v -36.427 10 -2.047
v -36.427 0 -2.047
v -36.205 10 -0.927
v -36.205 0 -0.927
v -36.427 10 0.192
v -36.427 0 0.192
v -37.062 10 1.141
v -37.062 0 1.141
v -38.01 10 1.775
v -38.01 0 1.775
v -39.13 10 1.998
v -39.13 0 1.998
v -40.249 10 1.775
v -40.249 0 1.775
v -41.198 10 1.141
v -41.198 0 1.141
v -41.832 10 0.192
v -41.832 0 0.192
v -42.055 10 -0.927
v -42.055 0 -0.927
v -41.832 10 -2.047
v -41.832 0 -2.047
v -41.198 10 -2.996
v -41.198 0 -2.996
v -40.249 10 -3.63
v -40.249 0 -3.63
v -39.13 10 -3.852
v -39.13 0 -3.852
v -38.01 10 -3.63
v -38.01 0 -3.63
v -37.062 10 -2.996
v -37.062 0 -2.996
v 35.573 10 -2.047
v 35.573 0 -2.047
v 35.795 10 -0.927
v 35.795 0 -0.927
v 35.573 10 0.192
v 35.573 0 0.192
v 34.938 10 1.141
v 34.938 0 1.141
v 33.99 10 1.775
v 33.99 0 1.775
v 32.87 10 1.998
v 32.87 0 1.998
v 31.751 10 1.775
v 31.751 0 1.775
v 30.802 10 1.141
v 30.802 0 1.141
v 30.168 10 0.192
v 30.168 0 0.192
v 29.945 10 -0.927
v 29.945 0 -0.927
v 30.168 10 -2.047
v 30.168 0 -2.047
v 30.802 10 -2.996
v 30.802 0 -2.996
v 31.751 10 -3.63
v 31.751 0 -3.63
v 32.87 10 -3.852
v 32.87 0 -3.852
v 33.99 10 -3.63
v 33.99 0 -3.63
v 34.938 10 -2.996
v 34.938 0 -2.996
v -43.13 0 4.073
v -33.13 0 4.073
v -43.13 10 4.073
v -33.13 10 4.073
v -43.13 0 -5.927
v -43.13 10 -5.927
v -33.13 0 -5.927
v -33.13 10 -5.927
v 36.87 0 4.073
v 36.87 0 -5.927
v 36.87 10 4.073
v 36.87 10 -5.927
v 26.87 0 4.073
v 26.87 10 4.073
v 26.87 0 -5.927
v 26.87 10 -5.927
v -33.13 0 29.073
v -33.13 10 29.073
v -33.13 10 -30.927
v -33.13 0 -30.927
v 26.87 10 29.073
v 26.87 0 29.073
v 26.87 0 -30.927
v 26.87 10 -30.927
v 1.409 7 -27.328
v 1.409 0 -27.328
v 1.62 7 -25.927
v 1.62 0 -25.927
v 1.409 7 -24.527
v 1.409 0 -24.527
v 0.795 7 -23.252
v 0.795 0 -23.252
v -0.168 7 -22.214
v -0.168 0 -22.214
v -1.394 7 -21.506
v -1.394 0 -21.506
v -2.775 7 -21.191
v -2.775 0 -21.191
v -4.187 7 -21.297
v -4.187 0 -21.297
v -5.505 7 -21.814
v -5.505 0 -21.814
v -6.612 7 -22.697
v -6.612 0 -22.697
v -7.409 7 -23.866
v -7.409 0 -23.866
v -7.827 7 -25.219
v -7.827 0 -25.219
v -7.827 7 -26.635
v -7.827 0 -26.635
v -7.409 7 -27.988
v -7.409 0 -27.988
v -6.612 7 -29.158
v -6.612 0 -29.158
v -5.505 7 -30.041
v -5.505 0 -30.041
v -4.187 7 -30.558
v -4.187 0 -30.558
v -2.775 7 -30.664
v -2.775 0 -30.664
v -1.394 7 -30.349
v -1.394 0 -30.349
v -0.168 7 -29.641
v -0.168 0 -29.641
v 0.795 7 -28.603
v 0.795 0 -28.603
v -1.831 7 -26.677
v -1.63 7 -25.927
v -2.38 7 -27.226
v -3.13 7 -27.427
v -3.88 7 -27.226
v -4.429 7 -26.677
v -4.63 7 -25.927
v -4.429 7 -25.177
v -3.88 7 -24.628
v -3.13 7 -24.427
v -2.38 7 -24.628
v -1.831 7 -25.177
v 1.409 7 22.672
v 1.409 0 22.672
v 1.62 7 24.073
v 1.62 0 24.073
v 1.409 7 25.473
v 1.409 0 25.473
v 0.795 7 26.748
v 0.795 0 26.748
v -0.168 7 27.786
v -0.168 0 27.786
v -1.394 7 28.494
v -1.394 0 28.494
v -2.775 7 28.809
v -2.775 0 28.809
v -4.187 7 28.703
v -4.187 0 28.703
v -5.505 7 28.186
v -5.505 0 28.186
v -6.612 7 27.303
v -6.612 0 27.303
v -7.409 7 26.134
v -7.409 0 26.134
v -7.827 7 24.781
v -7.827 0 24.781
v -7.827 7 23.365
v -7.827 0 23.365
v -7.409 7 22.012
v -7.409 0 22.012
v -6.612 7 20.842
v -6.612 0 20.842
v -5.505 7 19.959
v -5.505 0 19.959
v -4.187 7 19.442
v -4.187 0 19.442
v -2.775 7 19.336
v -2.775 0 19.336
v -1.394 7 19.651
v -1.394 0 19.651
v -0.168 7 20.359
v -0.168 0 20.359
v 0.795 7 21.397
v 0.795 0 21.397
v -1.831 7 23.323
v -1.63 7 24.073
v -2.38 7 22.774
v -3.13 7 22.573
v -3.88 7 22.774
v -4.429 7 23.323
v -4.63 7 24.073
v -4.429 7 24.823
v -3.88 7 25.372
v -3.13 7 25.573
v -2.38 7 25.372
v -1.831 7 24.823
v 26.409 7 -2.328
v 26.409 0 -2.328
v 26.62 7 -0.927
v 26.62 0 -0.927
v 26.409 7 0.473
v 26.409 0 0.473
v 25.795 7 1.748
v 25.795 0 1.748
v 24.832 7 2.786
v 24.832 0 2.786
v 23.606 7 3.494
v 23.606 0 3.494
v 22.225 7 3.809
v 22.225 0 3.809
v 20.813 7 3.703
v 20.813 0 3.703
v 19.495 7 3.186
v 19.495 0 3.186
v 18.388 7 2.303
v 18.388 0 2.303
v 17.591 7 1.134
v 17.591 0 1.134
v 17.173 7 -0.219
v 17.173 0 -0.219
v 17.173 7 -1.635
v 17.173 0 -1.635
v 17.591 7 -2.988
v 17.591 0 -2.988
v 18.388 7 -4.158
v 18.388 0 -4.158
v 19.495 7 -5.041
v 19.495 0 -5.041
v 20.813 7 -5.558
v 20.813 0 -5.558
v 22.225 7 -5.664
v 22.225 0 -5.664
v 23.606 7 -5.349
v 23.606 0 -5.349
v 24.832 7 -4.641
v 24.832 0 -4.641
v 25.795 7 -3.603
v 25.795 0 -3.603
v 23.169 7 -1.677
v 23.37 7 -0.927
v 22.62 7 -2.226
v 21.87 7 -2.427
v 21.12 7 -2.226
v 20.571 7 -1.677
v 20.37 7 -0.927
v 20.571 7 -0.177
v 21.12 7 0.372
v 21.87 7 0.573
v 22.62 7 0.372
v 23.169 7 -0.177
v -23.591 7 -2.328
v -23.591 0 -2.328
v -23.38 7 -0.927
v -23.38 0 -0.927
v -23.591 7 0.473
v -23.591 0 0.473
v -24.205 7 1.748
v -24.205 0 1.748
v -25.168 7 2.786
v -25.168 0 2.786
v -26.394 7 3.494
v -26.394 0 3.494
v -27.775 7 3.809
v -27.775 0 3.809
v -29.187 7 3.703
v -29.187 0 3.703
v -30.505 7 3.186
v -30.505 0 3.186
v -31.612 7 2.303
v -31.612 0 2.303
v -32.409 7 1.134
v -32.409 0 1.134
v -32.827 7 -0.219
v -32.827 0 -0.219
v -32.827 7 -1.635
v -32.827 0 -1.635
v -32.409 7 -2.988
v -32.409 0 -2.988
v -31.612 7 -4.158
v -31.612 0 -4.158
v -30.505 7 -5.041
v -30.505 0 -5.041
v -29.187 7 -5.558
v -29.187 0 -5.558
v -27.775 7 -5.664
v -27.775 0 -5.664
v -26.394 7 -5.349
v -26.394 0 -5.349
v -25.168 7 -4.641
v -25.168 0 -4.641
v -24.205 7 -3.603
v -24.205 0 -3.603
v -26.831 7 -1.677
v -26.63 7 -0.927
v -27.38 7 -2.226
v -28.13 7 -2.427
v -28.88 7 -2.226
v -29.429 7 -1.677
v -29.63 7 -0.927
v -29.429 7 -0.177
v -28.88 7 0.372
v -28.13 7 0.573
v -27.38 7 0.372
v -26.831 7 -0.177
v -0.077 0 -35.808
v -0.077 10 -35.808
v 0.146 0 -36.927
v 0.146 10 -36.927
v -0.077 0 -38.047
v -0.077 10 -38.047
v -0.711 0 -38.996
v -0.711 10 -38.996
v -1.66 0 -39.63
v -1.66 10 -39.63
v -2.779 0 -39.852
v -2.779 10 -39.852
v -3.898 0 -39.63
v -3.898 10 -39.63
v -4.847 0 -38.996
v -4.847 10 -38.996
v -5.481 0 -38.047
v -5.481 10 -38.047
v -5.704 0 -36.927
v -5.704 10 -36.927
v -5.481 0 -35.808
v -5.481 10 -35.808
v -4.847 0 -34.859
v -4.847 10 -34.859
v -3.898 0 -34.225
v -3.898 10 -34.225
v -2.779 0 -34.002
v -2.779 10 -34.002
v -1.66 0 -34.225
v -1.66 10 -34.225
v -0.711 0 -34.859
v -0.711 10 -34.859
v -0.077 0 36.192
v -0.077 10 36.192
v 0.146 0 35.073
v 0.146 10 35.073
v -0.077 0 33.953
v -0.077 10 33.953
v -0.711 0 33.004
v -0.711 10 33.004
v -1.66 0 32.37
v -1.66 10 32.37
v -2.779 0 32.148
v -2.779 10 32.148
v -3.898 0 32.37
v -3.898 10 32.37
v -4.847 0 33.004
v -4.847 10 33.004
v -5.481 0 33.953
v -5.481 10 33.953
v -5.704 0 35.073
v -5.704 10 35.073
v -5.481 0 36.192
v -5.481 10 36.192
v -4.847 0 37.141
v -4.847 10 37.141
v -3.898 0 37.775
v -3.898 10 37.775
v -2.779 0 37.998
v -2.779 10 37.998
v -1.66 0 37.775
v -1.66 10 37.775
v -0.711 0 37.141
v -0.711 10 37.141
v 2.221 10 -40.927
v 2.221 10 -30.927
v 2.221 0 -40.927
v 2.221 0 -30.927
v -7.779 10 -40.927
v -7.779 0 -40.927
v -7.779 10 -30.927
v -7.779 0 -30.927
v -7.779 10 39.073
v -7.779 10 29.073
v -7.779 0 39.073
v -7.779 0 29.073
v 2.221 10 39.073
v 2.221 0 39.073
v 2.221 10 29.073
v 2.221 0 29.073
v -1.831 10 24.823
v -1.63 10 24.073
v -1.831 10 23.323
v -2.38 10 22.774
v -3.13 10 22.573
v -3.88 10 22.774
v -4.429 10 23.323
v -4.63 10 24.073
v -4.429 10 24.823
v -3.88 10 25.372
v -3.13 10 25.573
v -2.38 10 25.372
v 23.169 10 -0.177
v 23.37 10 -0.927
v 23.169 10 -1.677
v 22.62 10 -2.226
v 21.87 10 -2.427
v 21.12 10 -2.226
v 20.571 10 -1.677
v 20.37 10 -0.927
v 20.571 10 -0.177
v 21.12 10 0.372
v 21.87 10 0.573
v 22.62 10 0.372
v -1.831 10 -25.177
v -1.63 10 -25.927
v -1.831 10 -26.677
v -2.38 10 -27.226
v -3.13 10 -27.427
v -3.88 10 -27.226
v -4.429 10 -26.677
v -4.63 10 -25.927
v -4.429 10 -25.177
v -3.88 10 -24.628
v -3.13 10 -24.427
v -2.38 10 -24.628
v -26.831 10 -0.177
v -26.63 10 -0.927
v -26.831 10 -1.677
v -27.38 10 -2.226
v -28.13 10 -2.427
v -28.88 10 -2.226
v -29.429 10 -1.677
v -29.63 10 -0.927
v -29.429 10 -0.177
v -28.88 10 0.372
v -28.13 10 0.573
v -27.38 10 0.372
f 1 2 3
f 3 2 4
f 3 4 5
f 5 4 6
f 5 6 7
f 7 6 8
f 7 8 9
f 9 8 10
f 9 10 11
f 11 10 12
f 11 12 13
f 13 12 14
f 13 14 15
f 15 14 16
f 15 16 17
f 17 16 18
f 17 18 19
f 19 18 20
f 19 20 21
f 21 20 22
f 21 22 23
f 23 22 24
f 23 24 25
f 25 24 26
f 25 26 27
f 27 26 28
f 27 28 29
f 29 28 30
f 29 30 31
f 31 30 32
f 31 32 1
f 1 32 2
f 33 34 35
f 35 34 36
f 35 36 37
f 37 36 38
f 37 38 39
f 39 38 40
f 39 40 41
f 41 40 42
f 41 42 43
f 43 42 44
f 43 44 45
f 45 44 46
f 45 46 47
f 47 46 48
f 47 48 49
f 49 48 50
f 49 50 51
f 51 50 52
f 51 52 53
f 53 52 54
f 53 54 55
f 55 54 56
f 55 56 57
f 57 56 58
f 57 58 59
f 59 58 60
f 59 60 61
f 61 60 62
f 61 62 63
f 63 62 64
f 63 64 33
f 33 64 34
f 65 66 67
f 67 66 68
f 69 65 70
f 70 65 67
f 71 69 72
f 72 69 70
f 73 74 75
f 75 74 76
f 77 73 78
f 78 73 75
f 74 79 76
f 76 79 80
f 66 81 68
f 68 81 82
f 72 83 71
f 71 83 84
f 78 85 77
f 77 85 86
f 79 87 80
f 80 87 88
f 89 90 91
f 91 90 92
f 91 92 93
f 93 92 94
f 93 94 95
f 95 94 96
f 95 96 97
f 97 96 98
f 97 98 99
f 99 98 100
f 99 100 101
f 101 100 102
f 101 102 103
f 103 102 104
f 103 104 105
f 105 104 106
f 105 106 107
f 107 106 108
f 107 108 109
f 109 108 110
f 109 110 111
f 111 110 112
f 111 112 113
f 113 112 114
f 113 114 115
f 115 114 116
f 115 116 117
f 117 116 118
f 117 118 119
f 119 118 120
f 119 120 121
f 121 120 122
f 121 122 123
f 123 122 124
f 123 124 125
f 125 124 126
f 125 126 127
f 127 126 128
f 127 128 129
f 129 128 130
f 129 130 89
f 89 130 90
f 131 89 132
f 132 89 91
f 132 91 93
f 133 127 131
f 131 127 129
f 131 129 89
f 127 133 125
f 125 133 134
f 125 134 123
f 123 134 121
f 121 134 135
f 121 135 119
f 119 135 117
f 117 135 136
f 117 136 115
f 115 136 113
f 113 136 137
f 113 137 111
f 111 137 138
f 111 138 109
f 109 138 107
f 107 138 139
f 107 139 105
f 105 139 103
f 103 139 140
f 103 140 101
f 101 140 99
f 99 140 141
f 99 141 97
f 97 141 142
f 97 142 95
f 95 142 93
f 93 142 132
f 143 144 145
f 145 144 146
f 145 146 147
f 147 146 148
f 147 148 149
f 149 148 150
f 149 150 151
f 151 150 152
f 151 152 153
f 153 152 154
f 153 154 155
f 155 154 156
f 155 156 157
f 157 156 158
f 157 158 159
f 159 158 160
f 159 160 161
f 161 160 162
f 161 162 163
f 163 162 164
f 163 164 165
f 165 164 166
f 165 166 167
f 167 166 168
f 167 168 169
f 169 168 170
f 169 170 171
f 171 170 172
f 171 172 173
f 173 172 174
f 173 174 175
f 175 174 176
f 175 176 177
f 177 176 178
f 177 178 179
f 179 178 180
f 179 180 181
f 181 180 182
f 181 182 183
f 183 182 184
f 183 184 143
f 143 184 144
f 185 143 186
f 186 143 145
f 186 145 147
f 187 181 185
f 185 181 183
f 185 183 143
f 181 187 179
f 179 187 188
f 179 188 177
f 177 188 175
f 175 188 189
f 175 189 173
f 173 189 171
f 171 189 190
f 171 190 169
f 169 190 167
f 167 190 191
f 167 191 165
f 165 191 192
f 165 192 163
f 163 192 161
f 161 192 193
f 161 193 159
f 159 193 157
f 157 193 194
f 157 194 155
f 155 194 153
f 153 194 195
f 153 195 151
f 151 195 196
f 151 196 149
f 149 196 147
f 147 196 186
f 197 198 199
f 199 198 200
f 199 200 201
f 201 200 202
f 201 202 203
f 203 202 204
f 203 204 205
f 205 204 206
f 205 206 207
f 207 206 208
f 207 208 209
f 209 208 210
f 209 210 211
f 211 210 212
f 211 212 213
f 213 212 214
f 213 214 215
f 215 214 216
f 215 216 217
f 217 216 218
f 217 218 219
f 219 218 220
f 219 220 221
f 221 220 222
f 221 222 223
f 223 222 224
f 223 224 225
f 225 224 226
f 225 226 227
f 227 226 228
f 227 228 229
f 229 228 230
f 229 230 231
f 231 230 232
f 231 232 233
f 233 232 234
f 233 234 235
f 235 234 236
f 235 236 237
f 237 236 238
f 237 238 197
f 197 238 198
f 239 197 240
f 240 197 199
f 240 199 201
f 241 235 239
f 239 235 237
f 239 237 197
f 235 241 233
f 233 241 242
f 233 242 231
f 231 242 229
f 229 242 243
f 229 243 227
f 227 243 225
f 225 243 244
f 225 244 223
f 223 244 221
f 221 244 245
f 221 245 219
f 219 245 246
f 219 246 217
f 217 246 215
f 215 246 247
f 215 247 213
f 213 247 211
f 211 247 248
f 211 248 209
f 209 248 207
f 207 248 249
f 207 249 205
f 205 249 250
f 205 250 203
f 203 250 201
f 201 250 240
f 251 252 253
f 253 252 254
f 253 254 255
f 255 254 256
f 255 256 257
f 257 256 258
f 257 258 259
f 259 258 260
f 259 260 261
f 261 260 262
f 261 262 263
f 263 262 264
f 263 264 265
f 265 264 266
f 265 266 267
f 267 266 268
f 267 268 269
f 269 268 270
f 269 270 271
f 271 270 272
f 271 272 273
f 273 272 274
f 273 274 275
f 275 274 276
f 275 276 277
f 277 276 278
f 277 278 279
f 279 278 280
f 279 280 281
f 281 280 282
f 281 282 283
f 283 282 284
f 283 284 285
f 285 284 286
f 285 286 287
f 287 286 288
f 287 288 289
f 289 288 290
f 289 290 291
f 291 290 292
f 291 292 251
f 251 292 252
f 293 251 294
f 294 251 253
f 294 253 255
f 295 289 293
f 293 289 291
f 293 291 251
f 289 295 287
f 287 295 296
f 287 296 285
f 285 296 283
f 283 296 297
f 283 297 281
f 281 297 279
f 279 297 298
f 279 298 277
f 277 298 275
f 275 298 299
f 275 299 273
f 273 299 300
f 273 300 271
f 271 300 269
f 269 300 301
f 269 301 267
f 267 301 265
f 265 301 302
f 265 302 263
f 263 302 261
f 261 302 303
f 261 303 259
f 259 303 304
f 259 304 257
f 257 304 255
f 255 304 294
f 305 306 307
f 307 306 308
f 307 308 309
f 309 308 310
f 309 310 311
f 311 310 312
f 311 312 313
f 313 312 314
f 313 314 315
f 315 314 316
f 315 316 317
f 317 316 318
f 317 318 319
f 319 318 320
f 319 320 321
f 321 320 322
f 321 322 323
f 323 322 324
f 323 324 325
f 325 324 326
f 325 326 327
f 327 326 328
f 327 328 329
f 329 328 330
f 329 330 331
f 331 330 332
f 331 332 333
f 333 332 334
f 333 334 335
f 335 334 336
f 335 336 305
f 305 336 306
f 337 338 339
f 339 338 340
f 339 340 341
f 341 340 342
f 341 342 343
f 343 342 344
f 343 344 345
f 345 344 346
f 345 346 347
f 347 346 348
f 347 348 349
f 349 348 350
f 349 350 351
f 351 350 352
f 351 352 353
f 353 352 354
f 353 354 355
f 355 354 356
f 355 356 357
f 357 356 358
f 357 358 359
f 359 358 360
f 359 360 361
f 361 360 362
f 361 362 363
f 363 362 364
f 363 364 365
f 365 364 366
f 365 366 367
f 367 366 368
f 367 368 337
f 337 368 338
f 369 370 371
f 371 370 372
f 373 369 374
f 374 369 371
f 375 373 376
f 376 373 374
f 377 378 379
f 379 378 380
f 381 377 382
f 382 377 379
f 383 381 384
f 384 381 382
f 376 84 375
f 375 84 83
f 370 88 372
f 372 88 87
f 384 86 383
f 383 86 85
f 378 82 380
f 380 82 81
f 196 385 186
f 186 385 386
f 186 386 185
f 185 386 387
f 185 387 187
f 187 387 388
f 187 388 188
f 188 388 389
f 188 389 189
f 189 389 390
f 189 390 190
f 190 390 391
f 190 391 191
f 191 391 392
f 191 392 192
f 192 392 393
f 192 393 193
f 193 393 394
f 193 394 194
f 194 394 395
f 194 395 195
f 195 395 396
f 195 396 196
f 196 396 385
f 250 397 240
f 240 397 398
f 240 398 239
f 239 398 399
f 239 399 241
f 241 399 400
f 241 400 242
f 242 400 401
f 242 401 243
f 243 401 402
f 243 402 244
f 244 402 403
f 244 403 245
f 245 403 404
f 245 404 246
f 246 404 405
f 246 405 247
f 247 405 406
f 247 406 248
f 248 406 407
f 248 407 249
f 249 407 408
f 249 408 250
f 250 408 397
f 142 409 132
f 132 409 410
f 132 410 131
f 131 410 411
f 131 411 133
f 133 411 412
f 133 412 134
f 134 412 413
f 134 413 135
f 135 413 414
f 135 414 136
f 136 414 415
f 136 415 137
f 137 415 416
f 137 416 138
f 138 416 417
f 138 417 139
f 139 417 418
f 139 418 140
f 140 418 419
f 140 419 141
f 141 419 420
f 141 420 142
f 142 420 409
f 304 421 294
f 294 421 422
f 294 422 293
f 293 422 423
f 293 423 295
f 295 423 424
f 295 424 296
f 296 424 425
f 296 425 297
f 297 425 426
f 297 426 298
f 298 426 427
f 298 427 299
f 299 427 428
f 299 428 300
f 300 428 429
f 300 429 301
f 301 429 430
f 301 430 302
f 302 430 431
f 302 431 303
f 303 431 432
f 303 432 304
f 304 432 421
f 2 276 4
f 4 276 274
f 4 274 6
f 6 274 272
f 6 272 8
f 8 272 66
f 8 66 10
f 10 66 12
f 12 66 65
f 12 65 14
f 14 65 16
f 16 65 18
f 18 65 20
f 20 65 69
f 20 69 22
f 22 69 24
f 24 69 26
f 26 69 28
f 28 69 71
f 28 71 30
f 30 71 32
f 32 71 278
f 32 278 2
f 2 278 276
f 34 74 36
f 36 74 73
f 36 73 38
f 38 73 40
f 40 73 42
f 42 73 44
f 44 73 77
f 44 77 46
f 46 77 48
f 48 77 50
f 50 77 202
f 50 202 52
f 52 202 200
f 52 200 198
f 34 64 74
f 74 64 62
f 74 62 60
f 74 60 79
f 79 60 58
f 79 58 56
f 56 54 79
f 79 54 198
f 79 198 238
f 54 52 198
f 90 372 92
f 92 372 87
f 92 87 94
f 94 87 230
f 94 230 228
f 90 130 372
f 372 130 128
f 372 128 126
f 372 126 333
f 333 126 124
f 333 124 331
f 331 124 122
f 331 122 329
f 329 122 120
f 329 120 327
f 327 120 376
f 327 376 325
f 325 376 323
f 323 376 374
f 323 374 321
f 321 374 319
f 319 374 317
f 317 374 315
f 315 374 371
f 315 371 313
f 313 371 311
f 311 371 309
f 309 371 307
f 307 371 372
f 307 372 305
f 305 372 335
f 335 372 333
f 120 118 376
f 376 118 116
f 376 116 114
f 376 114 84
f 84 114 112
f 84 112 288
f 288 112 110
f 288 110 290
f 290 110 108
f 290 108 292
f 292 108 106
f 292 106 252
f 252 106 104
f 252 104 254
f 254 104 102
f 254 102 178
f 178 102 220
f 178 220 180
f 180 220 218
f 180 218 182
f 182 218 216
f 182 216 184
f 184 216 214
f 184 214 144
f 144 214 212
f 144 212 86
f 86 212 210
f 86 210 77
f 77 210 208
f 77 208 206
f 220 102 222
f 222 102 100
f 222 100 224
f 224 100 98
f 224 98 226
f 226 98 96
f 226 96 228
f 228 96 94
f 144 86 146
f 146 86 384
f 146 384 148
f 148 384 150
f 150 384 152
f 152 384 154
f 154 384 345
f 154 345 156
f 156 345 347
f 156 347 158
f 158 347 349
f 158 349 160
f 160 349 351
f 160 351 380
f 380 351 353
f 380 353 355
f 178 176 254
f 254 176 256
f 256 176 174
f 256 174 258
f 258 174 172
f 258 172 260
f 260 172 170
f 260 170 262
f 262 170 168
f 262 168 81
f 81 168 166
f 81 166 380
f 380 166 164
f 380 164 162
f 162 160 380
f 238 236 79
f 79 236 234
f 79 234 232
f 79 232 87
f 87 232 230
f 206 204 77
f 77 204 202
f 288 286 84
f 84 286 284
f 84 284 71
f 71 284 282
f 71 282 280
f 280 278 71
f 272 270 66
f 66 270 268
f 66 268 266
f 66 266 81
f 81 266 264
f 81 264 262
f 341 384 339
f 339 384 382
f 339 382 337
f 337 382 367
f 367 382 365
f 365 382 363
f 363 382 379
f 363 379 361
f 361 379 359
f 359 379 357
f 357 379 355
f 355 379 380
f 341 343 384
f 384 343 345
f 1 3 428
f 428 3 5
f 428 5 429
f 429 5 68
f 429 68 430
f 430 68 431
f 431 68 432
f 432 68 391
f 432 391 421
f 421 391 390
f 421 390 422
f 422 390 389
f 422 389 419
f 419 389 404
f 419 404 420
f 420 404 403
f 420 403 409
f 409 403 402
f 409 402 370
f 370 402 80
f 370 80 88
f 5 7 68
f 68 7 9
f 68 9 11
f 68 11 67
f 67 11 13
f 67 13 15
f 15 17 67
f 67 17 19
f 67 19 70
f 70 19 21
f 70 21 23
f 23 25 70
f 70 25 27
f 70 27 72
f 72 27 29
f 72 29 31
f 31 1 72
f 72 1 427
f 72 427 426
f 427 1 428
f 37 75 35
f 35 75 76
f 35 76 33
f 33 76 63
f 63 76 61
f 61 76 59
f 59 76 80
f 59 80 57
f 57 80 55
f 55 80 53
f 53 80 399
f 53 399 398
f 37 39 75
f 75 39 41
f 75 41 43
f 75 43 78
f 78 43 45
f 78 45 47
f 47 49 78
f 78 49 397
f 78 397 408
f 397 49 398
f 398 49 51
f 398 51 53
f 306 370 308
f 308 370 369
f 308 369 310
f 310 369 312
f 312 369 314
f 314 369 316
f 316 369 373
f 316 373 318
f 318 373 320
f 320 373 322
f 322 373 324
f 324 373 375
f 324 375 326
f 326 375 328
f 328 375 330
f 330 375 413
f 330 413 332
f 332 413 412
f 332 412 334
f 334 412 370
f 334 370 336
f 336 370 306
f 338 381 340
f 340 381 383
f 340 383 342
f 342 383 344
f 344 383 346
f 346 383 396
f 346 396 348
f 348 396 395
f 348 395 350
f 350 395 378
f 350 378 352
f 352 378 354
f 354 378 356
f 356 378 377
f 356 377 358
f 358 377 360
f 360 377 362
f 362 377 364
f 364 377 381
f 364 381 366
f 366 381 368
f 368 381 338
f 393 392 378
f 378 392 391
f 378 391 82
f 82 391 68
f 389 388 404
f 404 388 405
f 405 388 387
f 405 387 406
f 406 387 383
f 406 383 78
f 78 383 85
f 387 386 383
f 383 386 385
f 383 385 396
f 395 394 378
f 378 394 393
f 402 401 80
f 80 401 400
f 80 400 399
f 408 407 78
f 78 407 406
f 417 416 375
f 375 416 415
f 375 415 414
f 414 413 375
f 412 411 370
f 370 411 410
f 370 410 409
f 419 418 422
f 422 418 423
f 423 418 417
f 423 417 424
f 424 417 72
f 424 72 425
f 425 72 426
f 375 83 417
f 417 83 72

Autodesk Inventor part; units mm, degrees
ref_plane "YZ Plane" through (0, 0, 0) normal (1, 0, 0) x (0, 1, 0)
ref_plane "XZ Plane" through (0, 0, 0) normal (0, 1, 0) x (-1, 0, 0)
ref_plane "XY Plane" through (0, 0, 0) normal (0, 0, 1) x (1, 0, 0)
sketch "Sketch1" plane through (0, 0, 0) normal (0, 1, 0) x (-1, 0, 0)
  circle A0 centre (28.1298, -0.9274) radius 1.5
  circle A1 centre (3.1298, -25.9274) radius 1.5
  circle A2 centre (-21.8702, -0.9274) radius 1.5
  circle A3 centre (3.1298, 24.0726) radius 1.5
  line L0 (33.1298, -30.9274) -> (-26.8702, -30.9274)
  line L1 (-26.8702, -30.9274) -> (-26.8702, 29.0726)
  line L2 (-26.8702, 29.0726) -> (33.1298, 29.0726)
  line L3 (33.1298, 29.0726) -> (33.1298, -30.9274)
  line L4 (33.1298, -30.9274) -> (-26.8702, 29.0726) construction
  line L5 (-26.8702, -30.9274) -> (33.1298, 29.0726) construction
  point P0 (0, 0)
  dimension "d1" = 3
  dimension "d2" = 3
  dimension "d3" = 3
  dimension "d4" = 3
  dimension "d7" = 60
  dimension "d8" = 5
  dimension "d9" = 50
  dimension "d10" = 50
  dimension "d12" = 5
  dimension "d13" = 60
  dimension "d14" = 5
  dimension "d15" = 30
  dimension "d16" = 30
  dimension "d17" = 30
extrude "Extrusion1" add sketch "Sketch1" along normal blind 10
sketch "Sketch2" plane through (0, 10, 0) normal (0, 1, 0) x (1, 0, 0)
  line L0 (26.8702, 30.9274) -> (-33.1298, 30.9274) projected
  line L1 (-7.7791, 30.9274) -> (2.2209, 30.9274)
  line L2 (2.2209, 30.9274) -> (2.2209, 40.9274)
  line L3 (2.2209, 40.9274) -> (-7.7791, 40.9274)
  line L4 (-7.7791, 40.9274) -> (-7.7791, 30.9274)
  line L5 (-33.1298, -29.0726) -> (26.8702, -29.0726) projected
  line L6 (-7.7791, -29.0726) -> (2.2209, -29.0726)
  line L7 (2.2209, -29.0726) -> (2.2209, -39.0726)
  line L8 (2.2209, -39.0726) -> (-7.7791, -39.0726)
  line L9 (-7.7791, -39.0726) -> (-7.7791, -29.0726)
  point P0 (0, 0)
  dimension "d18" = 10
  dimension "d19" = 10
  dimension "d20" = 10
extrude "Extrusion2" add sketch "Sketch2" against normal blind 10
sketch "Sketch3" plane through (0, 10, 0) normal (0, 1, 0) x (1, 0, 0)
  circle A0 centre (-2.7791, 36.9274) radius 2.925
  circle A1 centre (-2.7791, -35.0726) radius 2.925
  line L0 (2.2209, 40.9274) -> (-7.7791, 40.9274) projected
  line L1 (2.2209, -39.0726) -> (-7.7791, -39.0726) projected
  line L2 (-7.7791, 30.9274) -> (-7.7791, 40.9274) projected
  line L3 (-7.7791, -39.0726) -> (-7.7791, -29.0726) projected
  point P0 (0, 0)
  dimension "d23" = 5.85
  dimension "d24" = 5.85
  dimension "d25" = 4
  dimension "d26" = 4
  dimension "d29" = 5
  dimension "d30" = 5
extrude "Extrusion3" cut sketch "Sketch3" against normal through all
sketch "Sketch4" plane through (0, 0, 0) normal (0, -1, 0) x (1, 0, 0)
  circle A0 centre (-3.1298, 24.0726) radius 1.5 projected
  circle A1 centre (-3.1298, 24.0726) radius 4.75
  circle A2 centre (21.8702, -0.9274) radius 1.5 projected
  circle A3 centre (21.8702, -0.9274) radius 4.75
  circle A4 centre (-3.1298, -25.9274) radius 1.5 projected
  circle A5 centre (-3.1298, -25.9274) radius 4.75
  circle A6 centre (-28.1298, -0.9274) radius 1.5 projected
  circle A7 centre (-28.1298, -0.9274) radius 4.75
  point P0 (0, 0)
  dimension "d31" = 9.5
  dimension "d32" = 9.5
  dimension "d33" = 9.5
  dimension "d34" = 9.5
extrude "Extrusion4" cut sketch "Sketch4" against normal blind 7
sketch "Sketch5" plane through (0, 0, 0) normal (0, -1, 0) x (1, 0, 0)
  line L0 (-33.1298, 29.0726) -> (-33.1298, -30.9274) projected
  line L1 (-33.1298, -5.9274) -> (-43.1298, -5.9274)
  line L2 (-43.1298, -5.9274) -> (-43.1298, 4.0726)
  line L3 (-43.1298, 4.0726) -> (-33.1298, 4.0726)
  line L4 (-33.1298, 4.0726) -> (-33.1298, -5.9274)
  line L5 (-33.1298, -30.9274) -> (-7.7791, -30.9274) projected
  line L6 (26.8702, 29.0726) -> (-33.1298, 29.0726) projected
  line L7 (26.8702, -30.9274) -> (26.8702, 29.0726) projected
  line L8 (26.8702, -5.9274) -> (36.8702, -5.9274)
  line L9 (36.8702, -5.9274) -> (36.8702, 4.0726)
  line L10 (36.8702, 4.0726) -> (26.8702, 4.0726)
  line L11 (26.8702, 4.0726) -> (26.8702, -5.9274)
  line L12 (-33.1298, -30.9274) -> (26.8702, -30.9274) projected
  line L13 (26.8702, 29.0726) -> (2.2209, 29.0726) projected
  point P0 (0, 0)
  point P1 (-7.7791, 29.0726)
  point P2 (2.2209, -30.9274)
  dimension "d37" = 10
  dimension "d38" = 10
  dimension "d39" = 25
  dimension "d40" = 25
  dimension "d41" = 10
  dimension "d42" = 25
  dimension "d43" = 25
extrude "Extrusion5" add sketch "Sketch5" against normal blind 10 contours L0 L1 L2 L3 | L10 L9 L8 L7
sketch "Sketch6" plane through (0, 0, 0) normal (0, -1, 0) x (1, 0, 0)
  circle A0 centre (-39.1298, -0.9274) radius 2.925
  circle A1 centre (32.8702, -0.9274) radius 2.925
  line L0 (26.8702, -5.9274) -> (36.8702, -5.9274) projected
  line L1 (36.8702, -5.9274) -> (36.8702, 4.0726) projected
  line L2 (-43.1298, -5.9274) -> (-43.1298, 4.0726) projected
  line L3 (-33.1298, -5.9274) -> (-43.1298, -5.9274) projected
  point P0 (0, 0)
  dimension "d46" = 5.85
  dimension "d47" = 5.85
  dimension "d48" = 5
  dimension "d49" = 4
  dimension "d50" = 4
  dimension "d51" = 5
extrude "Extrusion6" cut sketch "Sketch6" against normal through all
properties part number "Bottom CLPCLampcell_V5"
